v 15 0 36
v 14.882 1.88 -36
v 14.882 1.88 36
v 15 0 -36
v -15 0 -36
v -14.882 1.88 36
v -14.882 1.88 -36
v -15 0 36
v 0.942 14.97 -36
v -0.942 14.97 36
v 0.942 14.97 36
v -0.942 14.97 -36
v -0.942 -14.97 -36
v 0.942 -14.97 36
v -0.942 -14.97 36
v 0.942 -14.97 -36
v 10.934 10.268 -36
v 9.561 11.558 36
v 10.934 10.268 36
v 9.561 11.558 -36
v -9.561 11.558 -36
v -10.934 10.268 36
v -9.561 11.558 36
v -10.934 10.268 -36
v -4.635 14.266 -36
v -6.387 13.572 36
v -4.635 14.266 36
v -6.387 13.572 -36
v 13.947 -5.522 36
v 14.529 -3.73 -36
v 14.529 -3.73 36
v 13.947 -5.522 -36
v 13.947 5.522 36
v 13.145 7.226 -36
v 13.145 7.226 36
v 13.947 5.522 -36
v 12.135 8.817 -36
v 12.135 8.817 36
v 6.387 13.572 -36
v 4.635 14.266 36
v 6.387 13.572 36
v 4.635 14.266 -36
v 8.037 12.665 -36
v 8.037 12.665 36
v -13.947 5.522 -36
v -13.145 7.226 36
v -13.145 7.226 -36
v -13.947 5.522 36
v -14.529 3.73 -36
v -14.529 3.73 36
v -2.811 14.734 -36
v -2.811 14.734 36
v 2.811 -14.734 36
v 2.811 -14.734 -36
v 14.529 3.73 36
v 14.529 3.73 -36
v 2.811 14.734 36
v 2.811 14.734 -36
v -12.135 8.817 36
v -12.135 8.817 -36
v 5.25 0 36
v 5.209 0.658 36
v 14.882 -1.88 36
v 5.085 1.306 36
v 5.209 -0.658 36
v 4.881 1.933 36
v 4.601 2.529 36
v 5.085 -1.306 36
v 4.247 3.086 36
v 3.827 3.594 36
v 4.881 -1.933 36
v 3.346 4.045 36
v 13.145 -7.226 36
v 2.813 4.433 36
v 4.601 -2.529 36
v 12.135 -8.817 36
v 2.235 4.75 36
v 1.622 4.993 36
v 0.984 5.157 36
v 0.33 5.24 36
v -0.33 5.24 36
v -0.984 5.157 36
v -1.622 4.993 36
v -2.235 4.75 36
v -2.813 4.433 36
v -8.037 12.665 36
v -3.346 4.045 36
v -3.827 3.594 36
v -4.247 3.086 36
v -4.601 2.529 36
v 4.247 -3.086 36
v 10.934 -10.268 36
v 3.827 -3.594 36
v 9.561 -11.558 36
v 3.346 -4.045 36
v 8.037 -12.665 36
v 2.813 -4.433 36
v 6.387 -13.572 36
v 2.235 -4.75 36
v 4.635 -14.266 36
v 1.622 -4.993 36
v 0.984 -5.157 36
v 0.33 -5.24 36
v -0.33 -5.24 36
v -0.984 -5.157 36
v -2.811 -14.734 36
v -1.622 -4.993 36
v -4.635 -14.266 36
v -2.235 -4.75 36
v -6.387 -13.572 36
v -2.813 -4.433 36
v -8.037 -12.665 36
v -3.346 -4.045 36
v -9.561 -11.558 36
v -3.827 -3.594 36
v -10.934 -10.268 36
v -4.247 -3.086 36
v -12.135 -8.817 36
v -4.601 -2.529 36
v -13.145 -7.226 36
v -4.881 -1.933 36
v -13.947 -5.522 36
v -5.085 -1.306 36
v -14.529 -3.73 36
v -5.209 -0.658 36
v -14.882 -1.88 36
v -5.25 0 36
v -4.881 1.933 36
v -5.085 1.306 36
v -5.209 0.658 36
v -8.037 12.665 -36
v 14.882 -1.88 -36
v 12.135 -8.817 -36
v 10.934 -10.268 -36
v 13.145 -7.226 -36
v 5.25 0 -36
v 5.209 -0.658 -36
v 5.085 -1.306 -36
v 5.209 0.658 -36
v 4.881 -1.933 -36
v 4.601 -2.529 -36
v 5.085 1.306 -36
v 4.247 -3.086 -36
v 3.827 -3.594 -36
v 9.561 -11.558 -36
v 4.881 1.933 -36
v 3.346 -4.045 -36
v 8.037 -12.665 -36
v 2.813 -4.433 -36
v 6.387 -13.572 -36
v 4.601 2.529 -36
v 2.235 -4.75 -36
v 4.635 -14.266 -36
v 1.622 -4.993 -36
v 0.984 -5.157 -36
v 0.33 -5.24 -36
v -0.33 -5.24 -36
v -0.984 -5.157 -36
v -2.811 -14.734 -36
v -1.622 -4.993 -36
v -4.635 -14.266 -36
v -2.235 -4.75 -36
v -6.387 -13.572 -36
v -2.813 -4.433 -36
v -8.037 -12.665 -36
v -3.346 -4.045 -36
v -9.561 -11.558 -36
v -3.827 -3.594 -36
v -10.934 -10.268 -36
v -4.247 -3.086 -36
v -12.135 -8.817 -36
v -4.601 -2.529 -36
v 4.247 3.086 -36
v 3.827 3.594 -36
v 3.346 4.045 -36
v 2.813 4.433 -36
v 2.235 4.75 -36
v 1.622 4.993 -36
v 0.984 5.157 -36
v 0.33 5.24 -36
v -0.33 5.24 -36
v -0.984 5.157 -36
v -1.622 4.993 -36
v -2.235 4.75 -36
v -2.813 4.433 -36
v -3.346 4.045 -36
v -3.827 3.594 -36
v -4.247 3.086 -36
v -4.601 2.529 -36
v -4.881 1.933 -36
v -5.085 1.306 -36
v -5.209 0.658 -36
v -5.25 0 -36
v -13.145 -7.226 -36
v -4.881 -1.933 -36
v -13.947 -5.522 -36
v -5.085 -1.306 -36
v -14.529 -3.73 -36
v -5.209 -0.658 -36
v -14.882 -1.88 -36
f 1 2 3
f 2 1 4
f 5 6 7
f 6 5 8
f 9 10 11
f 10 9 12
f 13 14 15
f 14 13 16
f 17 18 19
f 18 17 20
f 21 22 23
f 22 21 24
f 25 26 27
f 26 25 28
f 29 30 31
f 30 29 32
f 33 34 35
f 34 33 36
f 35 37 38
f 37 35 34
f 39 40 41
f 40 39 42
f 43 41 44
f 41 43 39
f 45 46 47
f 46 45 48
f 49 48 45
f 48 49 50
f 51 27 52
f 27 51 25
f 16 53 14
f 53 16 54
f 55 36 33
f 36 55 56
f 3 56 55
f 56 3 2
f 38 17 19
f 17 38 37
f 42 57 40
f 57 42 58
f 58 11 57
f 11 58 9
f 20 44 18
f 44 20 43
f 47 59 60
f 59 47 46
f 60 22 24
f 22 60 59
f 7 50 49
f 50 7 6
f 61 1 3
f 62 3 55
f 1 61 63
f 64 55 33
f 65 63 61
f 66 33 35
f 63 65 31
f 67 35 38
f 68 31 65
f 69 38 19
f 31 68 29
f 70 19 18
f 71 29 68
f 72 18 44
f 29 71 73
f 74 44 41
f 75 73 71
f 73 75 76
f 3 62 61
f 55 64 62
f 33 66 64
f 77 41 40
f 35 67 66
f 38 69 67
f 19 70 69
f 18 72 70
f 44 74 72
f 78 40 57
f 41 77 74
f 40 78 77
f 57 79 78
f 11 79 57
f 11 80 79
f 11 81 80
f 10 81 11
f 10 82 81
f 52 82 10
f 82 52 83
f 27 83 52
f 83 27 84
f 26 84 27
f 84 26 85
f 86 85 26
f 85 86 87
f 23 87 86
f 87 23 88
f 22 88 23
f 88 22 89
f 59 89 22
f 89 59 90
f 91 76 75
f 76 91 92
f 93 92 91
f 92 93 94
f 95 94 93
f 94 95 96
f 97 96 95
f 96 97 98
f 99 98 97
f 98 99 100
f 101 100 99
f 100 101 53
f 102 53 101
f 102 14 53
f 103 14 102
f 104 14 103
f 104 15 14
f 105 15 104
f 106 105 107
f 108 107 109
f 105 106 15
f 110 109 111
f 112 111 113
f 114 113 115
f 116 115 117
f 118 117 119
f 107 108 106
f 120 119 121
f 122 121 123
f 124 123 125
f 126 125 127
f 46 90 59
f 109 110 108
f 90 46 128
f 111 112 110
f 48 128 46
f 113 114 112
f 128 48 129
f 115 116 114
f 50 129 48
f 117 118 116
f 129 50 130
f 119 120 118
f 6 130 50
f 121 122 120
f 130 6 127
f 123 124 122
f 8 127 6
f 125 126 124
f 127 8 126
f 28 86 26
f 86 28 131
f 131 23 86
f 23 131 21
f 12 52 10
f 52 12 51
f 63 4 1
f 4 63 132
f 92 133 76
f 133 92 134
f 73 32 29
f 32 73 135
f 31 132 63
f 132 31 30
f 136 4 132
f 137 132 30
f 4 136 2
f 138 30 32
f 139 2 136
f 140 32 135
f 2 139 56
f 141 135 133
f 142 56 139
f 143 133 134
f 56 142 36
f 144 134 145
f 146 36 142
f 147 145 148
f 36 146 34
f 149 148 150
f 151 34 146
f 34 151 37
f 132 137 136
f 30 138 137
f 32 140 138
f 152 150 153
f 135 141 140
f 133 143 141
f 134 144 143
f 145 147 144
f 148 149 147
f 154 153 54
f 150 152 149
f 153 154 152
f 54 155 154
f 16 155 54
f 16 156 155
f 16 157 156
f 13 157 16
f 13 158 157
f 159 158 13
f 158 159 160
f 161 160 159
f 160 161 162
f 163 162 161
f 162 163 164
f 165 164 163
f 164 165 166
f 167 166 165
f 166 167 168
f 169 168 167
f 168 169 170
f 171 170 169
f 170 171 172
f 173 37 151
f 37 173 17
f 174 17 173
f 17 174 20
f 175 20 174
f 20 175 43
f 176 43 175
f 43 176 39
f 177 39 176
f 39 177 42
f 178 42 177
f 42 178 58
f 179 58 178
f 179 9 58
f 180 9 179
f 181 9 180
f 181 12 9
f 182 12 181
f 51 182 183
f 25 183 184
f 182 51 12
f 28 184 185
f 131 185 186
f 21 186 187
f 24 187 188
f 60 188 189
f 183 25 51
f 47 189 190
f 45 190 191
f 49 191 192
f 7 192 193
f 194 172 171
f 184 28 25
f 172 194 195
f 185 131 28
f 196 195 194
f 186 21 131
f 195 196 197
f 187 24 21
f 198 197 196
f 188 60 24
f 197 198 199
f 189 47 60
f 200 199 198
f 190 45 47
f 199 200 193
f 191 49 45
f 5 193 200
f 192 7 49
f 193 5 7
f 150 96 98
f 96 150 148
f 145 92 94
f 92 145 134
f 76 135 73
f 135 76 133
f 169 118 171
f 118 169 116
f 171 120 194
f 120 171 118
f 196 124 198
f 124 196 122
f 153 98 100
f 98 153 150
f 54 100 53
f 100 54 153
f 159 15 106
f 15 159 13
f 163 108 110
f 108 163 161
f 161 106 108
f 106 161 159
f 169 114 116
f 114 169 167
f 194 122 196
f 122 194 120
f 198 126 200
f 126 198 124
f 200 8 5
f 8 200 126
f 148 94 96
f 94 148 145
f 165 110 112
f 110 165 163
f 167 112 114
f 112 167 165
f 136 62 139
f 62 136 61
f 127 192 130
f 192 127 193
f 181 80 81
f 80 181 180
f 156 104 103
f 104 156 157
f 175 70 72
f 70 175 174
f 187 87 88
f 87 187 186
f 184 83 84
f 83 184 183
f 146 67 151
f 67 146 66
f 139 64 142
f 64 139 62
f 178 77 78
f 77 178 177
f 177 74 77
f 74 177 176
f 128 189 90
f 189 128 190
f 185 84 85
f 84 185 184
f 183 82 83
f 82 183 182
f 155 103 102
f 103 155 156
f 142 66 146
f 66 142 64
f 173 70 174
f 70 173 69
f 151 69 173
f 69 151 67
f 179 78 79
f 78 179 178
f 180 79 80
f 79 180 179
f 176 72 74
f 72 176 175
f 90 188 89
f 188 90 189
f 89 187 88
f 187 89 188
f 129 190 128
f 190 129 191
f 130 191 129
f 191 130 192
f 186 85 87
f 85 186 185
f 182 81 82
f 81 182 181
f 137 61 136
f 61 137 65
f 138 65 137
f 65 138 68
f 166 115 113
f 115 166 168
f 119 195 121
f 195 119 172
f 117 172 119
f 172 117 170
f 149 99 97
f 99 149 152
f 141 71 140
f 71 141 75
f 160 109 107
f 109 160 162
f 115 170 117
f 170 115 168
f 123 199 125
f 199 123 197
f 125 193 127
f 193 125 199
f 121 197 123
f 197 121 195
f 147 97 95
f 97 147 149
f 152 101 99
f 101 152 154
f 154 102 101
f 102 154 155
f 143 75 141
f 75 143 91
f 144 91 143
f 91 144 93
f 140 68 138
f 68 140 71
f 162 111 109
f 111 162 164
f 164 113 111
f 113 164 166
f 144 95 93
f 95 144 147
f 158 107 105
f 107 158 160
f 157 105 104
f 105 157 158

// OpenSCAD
$fn = 50;


difference() {
	union() {
		translate(v = [0, 0, -36.0000000000]) {
			cylinder(h = 72, r = 15.0000000000);
		}
	}
	union() {
		translate(v = [0, 0, -100.0000000000]) {
			cylinder(h = 200, r = 5.2500000000);
		}
	}
}
